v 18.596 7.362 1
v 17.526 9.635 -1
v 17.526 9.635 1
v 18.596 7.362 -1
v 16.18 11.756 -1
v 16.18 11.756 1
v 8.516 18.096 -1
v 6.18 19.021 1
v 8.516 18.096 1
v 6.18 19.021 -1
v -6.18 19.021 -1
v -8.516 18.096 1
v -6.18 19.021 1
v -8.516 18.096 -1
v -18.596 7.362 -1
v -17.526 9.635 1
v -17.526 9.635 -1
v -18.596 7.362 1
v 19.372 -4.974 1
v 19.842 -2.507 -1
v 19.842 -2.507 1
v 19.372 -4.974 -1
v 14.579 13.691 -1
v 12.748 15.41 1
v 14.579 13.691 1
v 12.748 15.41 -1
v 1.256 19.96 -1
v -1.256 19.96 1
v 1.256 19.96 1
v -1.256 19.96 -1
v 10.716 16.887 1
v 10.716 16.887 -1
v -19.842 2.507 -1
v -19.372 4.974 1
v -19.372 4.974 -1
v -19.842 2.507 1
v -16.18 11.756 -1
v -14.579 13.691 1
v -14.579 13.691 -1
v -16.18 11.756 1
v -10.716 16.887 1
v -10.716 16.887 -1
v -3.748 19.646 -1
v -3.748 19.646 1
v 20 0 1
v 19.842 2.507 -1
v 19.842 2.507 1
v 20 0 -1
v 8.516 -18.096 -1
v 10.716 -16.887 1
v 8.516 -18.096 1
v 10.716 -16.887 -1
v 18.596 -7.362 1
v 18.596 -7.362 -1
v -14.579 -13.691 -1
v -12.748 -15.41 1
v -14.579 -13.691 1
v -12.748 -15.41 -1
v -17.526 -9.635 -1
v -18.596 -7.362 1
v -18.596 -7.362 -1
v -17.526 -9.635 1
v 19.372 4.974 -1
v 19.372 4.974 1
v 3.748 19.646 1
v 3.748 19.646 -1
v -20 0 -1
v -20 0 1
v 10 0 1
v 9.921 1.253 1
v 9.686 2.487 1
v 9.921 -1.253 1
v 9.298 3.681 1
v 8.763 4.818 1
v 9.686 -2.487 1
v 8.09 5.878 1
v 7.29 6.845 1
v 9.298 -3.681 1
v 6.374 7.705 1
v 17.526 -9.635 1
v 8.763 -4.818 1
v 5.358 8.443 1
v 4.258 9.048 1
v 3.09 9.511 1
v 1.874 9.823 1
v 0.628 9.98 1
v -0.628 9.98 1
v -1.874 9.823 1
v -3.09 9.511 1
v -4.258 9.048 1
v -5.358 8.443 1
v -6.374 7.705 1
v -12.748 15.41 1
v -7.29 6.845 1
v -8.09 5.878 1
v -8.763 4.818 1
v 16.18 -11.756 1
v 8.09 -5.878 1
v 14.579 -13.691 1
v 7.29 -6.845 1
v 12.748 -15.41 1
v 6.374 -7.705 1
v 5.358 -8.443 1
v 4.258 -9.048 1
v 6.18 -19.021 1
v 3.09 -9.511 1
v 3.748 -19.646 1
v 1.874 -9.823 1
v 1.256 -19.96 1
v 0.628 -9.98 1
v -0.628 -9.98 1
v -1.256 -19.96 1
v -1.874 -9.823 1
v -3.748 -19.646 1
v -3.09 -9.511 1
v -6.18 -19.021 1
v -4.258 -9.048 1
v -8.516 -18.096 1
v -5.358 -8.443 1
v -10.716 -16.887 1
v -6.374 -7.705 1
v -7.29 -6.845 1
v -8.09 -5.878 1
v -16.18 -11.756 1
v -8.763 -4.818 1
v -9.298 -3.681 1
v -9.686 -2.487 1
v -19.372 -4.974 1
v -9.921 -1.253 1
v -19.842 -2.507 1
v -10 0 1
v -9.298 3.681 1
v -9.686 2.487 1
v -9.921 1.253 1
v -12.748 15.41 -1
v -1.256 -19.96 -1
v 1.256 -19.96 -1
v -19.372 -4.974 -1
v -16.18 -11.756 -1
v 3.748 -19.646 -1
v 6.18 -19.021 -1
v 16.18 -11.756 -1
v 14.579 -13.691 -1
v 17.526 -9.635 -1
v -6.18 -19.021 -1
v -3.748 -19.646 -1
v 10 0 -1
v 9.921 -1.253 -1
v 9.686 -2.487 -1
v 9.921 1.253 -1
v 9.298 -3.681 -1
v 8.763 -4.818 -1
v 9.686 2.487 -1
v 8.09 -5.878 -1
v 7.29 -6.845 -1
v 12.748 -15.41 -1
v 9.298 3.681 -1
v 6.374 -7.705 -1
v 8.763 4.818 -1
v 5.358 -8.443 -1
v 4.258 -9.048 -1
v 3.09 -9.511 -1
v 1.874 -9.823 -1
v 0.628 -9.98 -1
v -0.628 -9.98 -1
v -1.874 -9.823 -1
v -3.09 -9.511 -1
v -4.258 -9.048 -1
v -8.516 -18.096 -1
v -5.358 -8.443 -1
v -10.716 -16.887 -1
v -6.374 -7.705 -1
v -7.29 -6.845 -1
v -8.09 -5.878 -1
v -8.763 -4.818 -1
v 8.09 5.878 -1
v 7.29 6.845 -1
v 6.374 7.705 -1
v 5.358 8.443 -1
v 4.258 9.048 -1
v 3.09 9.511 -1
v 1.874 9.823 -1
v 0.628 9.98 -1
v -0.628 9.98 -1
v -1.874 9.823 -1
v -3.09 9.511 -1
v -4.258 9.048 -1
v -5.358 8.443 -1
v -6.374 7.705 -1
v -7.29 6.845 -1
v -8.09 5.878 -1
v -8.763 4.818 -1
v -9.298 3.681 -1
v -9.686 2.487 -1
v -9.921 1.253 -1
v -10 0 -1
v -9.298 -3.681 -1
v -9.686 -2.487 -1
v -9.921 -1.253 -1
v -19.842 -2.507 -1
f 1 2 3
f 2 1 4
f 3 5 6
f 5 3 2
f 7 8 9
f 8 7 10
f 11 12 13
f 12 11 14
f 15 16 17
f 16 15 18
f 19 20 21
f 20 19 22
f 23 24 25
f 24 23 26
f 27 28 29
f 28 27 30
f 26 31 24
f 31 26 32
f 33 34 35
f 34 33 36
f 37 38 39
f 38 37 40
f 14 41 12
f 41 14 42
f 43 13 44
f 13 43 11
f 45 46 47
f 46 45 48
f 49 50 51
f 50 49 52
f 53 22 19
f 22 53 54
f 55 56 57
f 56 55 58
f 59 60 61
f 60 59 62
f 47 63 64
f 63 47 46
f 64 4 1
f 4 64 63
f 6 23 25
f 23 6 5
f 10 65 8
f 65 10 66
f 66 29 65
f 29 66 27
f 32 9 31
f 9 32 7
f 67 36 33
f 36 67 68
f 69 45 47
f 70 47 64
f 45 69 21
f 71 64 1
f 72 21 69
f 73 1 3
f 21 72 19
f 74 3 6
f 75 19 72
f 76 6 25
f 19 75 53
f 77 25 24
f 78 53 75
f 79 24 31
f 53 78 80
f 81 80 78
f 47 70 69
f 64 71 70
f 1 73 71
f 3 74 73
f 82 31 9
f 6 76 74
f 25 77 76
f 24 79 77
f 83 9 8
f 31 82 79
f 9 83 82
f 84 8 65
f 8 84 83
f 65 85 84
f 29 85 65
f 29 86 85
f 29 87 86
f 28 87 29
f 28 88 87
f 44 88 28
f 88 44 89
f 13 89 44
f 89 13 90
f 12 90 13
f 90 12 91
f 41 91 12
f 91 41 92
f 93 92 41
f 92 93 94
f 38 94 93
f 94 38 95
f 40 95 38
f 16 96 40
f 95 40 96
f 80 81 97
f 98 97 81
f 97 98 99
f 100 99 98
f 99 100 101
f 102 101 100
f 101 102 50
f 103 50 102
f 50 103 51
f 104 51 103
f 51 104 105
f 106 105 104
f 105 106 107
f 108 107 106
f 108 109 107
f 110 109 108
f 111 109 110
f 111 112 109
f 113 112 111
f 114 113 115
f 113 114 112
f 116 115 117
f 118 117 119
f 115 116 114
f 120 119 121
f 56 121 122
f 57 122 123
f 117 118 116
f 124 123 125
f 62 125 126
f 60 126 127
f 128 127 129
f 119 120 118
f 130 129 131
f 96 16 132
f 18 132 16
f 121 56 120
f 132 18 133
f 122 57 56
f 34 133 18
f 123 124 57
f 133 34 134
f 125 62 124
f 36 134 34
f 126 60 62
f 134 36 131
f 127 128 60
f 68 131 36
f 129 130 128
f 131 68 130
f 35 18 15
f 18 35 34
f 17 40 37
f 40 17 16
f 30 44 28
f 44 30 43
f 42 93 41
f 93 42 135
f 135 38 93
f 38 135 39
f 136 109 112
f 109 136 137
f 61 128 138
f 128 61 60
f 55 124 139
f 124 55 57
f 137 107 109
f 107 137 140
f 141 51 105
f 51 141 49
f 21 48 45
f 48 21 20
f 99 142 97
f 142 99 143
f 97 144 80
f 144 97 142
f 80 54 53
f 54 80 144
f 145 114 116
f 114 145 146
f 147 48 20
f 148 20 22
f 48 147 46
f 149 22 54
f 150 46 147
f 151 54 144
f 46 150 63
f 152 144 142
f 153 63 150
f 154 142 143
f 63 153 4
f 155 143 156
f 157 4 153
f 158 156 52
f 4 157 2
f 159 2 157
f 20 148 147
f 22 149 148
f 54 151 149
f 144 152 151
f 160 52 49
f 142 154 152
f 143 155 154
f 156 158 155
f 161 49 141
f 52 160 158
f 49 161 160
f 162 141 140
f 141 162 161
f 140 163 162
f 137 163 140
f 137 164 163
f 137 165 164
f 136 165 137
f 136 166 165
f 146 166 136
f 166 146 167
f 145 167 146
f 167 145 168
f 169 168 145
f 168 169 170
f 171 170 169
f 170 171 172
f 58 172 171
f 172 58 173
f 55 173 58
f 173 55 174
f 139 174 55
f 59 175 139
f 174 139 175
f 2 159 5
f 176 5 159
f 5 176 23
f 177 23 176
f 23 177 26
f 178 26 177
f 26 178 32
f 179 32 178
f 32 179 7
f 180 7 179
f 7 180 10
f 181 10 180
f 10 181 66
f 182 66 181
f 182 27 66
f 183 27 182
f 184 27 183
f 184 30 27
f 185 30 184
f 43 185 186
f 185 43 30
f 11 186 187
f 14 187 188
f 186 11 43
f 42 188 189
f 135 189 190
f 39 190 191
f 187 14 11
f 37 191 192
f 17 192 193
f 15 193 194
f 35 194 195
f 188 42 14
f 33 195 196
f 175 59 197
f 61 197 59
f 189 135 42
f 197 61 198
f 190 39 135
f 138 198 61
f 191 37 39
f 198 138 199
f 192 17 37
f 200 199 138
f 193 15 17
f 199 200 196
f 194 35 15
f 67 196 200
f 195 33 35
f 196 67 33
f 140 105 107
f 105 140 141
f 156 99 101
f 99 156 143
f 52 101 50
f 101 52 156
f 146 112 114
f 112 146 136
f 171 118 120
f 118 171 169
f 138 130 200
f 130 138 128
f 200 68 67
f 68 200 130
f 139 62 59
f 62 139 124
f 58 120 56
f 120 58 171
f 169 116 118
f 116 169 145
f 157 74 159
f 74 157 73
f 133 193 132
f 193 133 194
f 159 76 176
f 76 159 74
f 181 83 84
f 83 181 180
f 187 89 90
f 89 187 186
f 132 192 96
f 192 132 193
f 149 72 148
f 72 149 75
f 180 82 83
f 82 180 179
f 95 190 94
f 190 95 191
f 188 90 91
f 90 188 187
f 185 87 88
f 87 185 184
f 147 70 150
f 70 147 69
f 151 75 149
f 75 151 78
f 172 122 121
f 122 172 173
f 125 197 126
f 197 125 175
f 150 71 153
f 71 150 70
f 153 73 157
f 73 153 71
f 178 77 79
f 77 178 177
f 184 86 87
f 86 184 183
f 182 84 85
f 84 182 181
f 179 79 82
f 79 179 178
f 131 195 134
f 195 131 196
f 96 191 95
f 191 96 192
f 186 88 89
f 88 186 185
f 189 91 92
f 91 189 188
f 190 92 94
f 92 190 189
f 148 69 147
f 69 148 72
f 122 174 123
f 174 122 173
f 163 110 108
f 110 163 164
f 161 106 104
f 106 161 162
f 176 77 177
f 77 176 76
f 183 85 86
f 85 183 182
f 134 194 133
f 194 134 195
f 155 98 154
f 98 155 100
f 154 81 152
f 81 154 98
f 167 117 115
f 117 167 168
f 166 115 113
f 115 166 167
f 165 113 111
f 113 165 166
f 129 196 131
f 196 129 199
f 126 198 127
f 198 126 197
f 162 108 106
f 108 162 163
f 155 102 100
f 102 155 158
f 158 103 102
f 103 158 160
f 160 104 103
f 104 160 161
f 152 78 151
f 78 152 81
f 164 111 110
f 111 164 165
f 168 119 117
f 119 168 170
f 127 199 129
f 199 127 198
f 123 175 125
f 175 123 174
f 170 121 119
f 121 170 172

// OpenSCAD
$fn = 50;


difference() {
	union() {
		translate(v = [0, 0, -1.0000000000]) {
			cylinder(h = 2, r = 20.0000000000);
		}
	}
	union() {
		translate(v = [0, 0, -100.0000000000]) {
			cylinder(h = 200, r = 10);
		}
	}
}
